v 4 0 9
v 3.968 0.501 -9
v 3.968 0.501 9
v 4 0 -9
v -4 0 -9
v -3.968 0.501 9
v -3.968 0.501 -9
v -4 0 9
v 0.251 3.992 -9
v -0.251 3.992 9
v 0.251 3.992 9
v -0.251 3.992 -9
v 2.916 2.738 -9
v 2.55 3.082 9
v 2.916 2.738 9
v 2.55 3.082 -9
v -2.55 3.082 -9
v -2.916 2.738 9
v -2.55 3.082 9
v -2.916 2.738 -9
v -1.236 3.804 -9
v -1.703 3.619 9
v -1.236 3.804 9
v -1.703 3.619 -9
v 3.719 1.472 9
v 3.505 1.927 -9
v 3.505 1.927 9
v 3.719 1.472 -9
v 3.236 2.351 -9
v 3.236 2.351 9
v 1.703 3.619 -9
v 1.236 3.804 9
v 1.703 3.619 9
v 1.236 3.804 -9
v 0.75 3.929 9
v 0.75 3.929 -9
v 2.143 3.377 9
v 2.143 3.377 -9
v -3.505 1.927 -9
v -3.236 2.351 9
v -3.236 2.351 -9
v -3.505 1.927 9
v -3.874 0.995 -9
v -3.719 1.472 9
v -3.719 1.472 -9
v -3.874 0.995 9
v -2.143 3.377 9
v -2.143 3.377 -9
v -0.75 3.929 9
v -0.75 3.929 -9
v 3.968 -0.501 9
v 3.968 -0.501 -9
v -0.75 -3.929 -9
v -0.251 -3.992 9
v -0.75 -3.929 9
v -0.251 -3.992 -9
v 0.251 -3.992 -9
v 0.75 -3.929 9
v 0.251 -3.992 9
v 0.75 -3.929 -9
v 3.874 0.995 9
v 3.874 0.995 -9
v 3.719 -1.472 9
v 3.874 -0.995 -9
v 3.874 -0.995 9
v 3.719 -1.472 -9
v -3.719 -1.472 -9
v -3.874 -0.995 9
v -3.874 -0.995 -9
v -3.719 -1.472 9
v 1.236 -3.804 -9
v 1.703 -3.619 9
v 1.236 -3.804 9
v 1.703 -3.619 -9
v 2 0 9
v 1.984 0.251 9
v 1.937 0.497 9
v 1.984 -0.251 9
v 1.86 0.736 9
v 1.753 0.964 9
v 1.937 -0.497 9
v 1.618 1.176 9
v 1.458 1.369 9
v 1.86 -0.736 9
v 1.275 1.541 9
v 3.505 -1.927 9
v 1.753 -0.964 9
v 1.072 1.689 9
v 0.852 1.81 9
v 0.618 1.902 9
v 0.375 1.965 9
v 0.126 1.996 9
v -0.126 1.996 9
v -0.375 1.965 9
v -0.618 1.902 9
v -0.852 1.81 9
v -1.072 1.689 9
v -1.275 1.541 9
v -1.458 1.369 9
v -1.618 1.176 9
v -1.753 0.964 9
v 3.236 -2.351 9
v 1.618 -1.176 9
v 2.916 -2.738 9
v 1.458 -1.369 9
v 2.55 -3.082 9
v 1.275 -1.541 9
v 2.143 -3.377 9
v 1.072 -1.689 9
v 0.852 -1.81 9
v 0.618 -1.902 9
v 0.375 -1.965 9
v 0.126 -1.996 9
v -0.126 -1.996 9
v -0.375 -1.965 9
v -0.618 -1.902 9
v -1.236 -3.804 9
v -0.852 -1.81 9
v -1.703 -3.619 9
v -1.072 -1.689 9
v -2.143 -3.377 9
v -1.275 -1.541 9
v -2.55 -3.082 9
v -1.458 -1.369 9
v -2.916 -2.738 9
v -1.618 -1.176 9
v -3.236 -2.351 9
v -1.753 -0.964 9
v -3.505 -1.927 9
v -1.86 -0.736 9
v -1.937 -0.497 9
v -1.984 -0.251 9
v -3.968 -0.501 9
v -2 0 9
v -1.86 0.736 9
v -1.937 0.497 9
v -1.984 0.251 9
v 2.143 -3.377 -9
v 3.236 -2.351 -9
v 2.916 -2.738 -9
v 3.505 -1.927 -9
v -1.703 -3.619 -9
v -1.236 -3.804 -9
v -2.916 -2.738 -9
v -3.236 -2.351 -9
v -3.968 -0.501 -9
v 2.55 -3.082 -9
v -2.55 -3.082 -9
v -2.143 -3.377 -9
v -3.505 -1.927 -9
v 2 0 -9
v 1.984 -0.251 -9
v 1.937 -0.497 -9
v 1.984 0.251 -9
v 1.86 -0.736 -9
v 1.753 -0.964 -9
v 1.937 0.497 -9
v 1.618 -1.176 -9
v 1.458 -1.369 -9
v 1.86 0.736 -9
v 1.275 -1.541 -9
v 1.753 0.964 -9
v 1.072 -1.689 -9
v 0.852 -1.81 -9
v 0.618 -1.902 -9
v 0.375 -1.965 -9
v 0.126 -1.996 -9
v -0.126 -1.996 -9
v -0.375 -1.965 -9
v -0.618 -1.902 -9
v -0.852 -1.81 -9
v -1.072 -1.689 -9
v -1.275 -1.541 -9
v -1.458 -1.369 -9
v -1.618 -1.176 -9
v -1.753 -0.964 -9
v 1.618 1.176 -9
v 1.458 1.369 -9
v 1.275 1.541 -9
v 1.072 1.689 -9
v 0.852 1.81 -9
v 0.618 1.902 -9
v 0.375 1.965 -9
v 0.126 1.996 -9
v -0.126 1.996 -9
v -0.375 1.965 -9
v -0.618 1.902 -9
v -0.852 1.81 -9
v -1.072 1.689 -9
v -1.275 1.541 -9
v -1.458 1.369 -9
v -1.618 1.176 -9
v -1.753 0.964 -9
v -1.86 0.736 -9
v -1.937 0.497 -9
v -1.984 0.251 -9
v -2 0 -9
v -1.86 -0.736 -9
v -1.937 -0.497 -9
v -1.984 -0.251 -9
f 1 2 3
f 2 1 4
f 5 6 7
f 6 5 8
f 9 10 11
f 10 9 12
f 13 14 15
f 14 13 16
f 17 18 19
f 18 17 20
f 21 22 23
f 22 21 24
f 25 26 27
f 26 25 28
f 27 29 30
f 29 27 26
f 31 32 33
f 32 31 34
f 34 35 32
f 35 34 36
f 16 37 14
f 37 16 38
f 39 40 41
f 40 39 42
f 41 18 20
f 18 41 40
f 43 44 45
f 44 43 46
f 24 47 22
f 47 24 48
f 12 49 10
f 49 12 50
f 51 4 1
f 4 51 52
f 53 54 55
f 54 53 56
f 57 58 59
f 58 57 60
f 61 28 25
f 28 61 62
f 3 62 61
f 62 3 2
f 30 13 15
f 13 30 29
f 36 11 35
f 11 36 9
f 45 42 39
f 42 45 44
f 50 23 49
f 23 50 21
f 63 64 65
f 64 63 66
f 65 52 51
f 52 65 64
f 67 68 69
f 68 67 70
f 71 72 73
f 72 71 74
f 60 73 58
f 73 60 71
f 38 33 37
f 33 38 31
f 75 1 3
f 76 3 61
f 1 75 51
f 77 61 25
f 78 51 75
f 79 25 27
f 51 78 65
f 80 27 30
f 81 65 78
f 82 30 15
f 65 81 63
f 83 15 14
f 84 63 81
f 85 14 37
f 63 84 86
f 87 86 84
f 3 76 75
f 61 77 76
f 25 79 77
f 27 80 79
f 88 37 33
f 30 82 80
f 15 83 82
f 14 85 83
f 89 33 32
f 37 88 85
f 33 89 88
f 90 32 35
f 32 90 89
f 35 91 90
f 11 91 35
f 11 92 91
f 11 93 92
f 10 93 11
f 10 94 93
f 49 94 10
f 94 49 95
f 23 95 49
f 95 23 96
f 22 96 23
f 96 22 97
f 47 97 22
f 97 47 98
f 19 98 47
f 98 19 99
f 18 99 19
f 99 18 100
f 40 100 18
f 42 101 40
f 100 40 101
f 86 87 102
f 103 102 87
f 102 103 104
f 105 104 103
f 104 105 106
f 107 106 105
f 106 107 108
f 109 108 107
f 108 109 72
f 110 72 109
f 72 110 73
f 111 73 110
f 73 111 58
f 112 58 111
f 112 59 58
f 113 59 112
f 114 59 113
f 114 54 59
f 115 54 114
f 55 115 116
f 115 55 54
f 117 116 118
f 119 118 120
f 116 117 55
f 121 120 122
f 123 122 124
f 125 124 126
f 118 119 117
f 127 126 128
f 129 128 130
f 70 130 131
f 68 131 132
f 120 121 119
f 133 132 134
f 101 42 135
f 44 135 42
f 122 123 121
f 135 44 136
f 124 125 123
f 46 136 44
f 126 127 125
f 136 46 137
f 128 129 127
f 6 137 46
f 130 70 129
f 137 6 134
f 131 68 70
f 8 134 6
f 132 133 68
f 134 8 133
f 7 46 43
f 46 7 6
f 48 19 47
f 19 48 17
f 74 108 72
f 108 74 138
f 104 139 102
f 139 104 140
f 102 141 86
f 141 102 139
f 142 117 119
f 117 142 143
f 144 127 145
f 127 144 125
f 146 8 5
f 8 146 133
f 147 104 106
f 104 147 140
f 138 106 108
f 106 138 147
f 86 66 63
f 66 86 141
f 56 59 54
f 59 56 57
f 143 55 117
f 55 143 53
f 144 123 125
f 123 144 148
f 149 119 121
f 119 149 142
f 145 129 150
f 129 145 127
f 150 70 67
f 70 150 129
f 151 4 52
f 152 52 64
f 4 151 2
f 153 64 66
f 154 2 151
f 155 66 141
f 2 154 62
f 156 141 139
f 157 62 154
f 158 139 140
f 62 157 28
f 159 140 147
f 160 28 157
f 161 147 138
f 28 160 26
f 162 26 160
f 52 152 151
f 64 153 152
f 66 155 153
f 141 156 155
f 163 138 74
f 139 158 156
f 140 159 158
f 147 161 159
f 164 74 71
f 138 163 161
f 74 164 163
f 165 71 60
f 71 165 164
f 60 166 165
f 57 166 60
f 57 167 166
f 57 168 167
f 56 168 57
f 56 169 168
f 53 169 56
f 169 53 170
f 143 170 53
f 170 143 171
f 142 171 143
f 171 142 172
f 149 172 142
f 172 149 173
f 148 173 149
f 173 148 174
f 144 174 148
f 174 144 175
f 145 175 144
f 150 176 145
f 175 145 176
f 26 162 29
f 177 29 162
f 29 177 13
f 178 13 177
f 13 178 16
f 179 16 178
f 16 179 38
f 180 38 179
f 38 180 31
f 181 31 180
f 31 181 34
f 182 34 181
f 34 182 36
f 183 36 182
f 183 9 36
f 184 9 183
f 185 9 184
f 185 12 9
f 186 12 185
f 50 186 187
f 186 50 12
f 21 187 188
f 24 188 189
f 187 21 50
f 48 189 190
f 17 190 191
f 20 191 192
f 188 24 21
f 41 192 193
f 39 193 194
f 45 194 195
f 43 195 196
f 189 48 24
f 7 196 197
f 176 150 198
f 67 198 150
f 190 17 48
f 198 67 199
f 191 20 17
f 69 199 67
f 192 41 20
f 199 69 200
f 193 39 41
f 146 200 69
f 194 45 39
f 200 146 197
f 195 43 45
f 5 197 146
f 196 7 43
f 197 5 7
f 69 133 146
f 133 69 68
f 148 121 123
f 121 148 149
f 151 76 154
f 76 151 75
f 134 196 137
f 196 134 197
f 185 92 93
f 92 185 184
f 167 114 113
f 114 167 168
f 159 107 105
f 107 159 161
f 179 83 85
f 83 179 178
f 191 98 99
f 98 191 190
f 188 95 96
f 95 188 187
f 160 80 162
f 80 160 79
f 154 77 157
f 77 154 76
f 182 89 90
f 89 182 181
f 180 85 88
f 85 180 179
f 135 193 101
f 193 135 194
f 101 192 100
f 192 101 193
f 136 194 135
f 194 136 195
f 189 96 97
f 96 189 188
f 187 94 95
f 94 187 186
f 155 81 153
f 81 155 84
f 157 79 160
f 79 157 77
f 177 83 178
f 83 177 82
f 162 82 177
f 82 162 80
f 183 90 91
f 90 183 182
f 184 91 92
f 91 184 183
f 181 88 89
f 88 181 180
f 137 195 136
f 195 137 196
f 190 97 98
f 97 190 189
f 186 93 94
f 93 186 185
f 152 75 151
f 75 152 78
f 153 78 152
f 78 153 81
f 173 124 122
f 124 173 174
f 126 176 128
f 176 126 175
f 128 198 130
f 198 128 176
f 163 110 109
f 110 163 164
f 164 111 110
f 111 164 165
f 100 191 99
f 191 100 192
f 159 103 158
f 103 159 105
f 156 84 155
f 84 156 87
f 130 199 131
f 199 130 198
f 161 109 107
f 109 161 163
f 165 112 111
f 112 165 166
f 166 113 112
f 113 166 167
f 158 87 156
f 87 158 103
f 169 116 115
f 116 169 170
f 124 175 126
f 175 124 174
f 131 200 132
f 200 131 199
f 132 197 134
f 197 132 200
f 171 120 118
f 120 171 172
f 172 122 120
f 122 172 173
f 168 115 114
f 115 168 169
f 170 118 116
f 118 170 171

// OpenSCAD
$fn = 50;


difference() {
	union() {
		translate(v = [0, 0, -9.0000000000]) {
			cylinder(h = 18, r = 4.0000000000);
		}
	}
	union() {
		translate(v = [0, 0, -100.0000000000]) {
			cylinder(h = 200, r = 2.0000000000);
		}
	}
}
